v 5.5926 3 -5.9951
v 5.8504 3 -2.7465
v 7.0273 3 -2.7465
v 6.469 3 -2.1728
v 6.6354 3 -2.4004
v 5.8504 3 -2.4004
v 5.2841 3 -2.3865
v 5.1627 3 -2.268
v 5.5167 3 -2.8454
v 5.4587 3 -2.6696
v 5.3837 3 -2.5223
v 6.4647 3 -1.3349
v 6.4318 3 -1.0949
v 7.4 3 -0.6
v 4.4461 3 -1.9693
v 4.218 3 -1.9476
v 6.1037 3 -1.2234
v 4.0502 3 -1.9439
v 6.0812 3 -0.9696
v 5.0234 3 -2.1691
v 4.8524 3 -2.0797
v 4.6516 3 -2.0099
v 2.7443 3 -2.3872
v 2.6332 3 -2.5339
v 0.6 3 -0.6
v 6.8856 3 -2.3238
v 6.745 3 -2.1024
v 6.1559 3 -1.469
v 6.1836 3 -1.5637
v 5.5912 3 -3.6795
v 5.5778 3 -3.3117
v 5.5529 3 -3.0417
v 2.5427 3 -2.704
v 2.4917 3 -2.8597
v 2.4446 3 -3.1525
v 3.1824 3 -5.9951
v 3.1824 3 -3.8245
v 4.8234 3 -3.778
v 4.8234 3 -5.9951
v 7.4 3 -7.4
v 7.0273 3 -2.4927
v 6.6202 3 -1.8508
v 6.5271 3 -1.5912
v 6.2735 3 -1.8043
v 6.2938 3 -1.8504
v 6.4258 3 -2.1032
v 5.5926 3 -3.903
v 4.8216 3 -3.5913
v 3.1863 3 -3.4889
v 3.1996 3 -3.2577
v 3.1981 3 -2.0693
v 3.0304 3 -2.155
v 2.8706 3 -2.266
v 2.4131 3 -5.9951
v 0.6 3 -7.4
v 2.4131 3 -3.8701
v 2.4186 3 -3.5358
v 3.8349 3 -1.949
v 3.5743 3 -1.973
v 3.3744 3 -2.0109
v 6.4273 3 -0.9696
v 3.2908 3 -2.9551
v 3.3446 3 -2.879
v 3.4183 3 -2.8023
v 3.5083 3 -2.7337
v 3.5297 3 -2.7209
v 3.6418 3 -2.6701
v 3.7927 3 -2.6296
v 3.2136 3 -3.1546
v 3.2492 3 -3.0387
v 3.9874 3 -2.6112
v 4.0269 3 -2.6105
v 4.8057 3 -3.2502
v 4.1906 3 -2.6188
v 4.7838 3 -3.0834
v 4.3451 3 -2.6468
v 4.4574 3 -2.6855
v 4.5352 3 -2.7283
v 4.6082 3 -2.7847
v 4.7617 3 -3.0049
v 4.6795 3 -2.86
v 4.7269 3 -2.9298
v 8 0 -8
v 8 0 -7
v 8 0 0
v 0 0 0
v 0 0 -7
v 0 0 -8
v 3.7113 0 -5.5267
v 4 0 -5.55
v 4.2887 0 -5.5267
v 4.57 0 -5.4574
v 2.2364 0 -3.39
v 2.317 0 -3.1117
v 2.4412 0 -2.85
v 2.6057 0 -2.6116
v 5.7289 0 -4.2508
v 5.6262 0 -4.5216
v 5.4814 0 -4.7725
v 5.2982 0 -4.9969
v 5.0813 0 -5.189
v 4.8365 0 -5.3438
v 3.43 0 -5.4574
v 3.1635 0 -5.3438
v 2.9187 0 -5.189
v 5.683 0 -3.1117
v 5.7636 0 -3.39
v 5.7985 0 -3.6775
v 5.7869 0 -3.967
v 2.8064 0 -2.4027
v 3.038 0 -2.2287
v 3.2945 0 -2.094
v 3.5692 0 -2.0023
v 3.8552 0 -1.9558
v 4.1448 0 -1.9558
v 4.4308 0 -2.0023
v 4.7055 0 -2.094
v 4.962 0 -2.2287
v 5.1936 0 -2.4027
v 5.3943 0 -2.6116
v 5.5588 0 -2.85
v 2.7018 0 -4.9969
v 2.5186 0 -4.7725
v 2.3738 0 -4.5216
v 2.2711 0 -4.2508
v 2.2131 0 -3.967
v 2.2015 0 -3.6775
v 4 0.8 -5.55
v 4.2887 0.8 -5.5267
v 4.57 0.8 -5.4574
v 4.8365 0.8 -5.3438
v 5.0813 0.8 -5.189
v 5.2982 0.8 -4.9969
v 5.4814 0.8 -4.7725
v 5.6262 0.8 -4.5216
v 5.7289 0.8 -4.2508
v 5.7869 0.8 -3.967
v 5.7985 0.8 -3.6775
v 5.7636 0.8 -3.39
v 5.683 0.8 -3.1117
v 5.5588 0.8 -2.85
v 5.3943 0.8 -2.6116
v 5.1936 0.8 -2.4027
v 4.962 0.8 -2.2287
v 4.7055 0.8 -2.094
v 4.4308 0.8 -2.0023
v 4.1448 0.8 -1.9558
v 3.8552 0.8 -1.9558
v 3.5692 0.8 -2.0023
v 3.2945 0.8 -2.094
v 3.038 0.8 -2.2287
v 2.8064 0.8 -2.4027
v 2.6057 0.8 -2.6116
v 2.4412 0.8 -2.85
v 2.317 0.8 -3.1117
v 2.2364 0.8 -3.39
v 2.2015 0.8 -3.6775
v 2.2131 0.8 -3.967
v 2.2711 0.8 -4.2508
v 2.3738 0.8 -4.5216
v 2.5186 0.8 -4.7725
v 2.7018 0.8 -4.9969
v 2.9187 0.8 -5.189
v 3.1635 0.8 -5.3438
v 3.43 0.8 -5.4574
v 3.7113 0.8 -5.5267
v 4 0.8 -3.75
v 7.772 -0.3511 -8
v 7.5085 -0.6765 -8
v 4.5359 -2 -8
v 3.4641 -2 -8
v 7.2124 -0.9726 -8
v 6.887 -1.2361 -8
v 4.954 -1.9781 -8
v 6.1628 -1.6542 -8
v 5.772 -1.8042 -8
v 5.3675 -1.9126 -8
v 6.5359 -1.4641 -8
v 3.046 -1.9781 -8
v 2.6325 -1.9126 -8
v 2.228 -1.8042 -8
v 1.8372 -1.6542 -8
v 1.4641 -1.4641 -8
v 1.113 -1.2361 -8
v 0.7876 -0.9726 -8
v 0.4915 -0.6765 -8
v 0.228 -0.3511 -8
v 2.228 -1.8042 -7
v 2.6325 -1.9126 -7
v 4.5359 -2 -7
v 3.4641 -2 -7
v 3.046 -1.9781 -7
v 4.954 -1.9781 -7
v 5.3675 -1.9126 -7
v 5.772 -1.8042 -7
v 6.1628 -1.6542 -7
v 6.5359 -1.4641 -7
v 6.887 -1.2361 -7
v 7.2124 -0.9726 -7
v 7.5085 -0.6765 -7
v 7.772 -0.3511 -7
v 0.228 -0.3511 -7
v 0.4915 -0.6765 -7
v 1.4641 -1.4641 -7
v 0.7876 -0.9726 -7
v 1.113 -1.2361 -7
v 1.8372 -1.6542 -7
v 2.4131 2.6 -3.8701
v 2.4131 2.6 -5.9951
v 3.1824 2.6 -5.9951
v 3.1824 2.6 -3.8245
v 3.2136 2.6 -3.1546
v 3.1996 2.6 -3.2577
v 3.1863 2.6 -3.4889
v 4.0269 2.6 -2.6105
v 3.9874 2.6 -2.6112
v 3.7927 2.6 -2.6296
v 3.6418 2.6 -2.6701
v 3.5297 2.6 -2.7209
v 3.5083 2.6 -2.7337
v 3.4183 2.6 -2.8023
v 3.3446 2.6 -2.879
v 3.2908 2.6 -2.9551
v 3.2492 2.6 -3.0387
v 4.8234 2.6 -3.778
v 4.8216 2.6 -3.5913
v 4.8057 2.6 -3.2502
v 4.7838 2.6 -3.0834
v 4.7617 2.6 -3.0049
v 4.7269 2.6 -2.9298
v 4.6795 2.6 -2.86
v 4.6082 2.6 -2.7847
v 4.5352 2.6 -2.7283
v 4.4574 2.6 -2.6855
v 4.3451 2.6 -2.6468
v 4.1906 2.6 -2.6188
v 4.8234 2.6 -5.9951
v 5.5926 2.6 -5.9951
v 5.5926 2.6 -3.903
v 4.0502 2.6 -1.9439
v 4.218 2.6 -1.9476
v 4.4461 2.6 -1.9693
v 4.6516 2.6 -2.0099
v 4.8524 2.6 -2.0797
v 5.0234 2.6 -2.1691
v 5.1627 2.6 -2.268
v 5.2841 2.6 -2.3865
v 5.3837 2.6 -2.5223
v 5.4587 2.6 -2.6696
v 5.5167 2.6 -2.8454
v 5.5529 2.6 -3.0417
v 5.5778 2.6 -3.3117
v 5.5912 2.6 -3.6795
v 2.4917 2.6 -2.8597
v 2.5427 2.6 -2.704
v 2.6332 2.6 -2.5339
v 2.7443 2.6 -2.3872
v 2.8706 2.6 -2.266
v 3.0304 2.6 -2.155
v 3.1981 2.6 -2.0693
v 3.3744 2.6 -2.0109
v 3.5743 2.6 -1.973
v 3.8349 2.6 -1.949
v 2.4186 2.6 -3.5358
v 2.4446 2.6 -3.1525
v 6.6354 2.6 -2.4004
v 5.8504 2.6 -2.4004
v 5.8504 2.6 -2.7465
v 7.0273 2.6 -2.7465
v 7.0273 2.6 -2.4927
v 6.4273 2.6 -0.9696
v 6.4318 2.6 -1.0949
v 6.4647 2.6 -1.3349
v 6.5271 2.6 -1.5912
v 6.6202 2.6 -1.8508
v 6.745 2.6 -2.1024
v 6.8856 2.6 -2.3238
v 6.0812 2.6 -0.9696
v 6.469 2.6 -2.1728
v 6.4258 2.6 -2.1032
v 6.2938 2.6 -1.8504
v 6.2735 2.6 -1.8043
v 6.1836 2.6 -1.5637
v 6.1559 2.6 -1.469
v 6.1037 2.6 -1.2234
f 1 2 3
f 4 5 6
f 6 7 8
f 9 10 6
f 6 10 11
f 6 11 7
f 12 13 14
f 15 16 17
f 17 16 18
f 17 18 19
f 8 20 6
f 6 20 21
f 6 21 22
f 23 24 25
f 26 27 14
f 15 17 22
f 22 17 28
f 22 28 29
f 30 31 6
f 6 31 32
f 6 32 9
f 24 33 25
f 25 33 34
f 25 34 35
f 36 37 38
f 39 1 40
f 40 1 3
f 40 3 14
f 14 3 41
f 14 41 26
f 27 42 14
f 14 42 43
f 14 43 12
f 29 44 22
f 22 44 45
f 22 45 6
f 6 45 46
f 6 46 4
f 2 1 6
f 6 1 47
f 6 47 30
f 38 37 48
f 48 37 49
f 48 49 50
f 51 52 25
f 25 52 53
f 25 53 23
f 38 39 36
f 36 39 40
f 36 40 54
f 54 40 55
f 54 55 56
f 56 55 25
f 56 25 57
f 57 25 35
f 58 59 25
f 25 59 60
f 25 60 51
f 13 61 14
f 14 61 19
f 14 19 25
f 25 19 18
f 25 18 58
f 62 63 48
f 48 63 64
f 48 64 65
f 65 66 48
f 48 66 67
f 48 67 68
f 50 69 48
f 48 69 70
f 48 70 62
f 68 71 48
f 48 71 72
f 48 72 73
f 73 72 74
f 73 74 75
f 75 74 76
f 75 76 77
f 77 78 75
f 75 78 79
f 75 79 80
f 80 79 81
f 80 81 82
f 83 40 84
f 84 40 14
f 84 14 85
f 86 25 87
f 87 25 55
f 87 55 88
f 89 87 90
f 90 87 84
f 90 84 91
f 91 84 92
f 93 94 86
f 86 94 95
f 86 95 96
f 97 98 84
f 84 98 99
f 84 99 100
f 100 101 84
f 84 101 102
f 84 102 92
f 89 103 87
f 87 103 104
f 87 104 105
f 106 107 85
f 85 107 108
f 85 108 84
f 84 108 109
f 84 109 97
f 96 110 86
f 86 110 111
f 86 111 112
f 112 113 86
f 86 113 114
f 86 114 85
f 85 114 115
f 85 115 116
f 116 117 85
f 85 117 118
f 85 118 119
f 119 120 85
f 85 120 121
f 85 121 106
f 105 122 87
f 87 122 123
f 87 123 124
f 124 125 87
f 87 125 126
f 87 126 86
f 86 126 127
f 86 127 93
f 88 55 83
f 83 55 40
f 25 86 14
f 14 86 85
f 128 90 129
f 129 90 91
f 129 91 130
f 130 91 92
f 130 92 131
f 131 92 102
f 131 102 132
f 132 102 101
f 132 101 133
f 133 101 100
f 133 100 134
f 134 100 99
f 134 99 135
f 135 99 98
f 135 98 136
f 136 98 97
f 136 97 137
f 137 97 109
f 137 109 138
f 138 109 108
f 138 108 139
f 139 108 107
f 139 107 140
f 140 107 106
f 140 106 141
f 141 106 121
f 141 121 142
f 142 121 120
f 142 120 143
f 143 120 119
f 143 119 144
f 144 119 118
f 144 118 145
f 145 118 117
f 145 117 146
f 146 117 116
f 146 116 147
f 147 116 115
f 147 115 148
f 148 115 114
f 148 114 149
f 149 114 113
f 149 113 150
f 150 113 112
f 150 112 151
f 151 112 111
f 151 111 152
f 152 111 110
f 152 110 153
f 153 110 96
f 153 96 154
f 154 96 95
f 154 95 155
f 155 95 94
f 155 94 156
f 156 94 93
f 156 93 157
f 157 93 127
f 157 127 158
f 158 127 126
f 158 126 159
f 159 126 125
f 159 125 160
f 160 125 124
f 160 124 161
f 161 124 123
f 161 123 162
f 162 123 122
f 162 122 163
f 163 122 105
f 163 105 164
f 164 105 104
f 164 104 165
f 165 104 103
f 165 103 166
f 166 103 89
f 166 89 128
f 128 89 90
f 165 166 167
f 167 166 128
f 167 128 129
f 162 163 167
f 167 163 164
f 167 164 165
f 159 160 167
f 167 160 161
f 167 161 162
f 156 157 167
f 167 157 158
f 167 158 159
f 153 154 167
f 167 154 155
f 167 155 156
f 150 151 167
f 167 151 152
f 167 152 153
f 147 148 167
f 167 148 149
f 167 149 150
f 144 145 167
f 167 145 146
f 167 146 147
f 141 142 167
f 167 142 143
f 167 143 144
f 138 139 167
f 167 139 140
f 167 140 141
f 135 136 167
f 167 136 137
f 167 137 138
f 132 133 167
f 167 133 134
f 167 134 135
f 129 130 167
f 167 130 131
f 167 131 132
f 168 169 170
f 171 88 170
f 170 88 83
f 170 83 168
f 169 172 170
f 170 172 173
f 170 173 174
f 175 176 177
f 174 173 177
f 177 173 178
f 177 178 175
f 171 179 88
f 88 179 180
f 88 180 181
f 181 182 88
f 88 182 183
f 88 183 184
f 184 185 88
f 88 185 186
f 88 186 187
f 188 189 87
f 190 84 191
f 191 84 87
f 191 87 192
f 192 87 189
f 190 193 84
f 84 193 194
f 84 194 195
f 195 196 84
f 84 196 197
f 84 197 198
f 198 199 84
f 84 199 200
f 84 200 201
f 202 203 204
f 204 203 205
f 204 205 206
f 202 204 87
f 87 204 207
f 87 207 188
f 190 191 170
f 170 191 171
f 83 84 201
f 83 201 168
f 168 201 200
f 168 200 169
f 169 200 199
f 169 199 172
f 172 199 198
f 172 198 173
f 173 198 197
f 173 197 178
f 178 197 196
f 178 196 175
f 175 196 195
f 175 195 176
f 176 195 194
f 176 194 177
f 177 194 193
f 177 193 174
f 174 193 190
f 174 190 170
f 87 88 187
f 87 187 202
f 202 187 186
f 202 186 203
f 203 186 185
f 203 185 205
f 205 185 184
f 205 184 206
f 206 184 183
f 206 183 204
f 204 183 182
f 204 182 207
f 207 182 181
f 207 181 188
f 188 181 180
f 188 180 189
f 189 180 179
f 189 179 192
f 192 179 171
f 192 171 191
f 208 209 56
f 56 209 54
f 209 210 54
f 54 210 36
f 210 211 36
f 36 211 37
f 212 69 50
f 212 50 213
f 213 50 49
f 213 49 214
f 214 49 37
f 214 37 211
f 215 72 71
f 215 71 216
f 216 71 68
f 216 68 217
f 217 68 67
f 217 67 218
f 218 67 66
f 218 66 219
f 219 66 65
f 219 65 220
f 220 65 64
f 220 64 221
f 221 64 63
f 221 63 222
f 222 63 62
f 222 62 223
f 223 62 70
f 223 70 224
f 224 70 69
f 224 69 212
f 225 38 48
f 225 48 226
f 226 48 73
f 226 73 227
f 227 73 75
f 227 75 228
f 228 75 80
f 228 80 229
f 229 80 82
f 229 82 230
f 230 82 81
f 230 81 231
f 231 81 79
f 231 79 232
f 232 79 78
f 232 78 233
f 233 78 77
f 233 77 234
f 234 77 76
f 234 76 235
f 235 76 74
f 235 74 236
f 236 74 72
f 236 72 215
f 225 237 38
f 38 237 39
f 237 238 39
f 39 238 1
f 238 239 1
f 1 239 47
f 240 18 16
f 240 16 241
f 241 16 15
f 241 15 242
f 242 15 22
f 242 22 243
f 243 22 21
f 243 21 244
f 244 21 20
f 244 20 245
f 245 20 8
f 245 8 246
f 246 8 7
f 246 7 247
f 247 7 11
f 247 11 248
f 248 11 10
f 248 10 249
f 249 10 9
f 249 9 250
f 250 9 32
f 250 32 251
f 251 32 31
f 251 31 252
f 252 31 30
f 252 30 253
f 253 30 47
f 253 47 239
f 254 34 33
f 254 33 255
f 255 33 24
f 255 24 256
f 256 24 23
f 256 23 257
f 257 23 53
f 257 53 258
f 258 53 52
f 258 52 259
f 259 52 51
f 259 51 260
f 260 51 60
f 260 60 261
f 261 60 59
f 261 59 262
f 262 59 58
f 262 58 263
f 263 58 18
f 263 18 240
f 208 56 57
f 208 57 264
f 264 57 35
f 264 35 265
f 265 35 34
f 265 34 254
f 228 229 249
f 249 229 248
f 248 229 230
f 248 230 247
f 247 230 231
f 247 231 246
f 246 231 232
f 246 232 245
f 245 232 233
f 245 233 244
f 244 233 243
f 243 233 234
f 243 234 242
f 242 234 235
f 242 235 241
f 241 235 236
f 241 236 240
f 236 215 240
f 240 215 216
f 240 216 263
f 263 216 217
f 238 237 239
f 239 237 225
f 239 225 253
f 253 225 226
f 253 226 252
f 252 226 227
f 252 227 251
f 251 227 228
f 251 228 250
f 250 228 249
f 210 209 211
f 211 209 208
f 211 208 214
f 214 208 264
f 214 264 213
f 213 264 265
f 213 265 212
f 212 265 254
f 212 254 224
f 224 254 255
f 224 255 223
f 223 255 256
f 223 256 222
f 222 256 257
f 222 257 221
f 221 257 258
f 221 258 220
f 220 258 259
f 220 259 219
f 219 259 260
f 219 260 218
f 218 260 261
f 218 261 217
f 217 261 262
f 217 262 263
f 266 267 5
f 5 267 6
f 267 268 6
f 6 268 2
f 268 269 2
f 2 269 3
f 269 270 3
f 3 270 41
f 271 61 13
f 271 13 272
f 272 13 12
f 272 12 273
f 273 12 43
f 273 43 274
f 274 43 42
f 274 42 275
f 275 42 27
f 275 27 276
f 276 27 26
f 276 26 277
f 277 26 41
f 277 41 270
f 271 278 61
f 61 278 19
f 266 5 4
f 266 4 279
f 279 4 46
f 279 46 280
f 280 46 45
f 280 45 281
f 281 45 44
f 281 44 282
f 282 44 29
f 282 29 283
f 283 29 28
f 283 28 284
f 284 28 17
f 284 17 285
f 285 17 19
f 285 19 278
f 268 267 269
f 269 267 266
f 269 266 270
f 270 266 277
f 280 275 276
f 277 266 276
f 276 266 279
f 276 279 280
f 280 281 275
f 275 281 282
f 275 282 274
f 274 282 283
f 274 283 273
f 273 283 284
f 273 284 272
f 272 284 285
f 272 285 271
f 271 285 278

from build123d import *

# Parameters (mm, degrees)
SKETCH1_W               = 8
SKETCH1_H               = 8
BOSS_EXTRUDE1_DEPTH     = 3
CUT_EXTRUDE1_DEPTH      = 12.704699911
CUT_EXTRUDE1_DEPTH_BACK = 12.704699911
CUT_EXTRUDE2_DEPTH      = 11
SKETCH4_R               = 1.8
CUT_EXTRUDE3_DEPTH      = 0.8
SKETCH5_W               = 8
SKETCH5_H               = 1
BOSS_EXTRUDE2_DEPTH     = 2
FILLET1_R               = 4
CUT_EXTRUDE4_DEPTH      = 0.4
CUT_EXTRUDE5_DEPTH      = 0.4


with BuildPart() as part:
    # Sketch1 → Boss-Extrude1 (new body)
    with BuildSketch(Plane(origin=(0, 0, 0), x_dir=(1, 0, 0), z_dir=(0, 1, 0))):
        with Locations((4, 4)):
            Rectangle(SKETCH1_W, SKETCH1_H)
    extrude(amount=BOSS_EXTRUDE1_DEPTH)

    # Sketch2 → Cut-Extrude1 (cut, two sides: drawn at the far end of the back side and taken through both)
    with BuildSketch(Plane.XY.offset(-CUT_EXTRUDE1_DEPTH_BACK)):
        Polygon((0, 0), (0.6, 3), (0, 3), align=None)
        Polygon((8, 0), (7.4, 3), (8, 3), align=None)
    extrude(amount=CUT_EXTRUDE1_DEPTH + CUT_EXTRUDE1_DEPTH_BACK, mode=Mode.SUBTRACT)

    # Sketch3 → Cut-Extrude2 (cut)
    with BuildSketch(Plane(origin=(0, 0, 0), x_dir=(0, 0, -1), z_dir=(1, 0, 0))):
        Polygon((0, 0), (0.6, 3), (0, 3), align=None)
        Polygon((8, 3), (7.4, 3), (8, 0), align=None)
    extrude(amount=CUT_EXTRUDE2_DEPTH, mode=Mode.SUBTRACT)

    # Sketch4 → Cut-Extrude3 (cut)
    with BuildSketch(Plane.XZ):
        with Locations(Location((4, -3.75, 0), (0, 0, 270))):
            Circle(SKETCH4_R)
    extrude(amount=-CUT_EXTRUDE3_DEPTH, mode=Mode.SUBTRACT)

    # Sketch5 → Boss-Extrude2 (add)
    with BuildSketch(Plane.XZ):
        with Locations((4, -7.5)):
            Rectangle(SKETCH5_W, SKETCH5_H)
    extrude(amount=BOSS_EXTRUDE2_DEPTH)

    # Fillet1
    # the kernel refuses this fillet: 4 mm, written as the material it takes off along each edge
    with BuildSketch(Plane(origin=(8, -2, -16.660254038), x_dir=(0, 1, 0), z_dir=(0, 0, 1)), Plane(origin=(0, -2, 1.660254038), x_dir=(0, 1, 0), z_dir=(0, 0, -1))) as fillet1_piece_1:
        with BuildLine():
            CenterArc((4, 3.464101615), FILLET1_R, 180, 60)
            Line((0, 3.464101615), (-0.08, 3.464101615))
            Line((-0.08, 3.464101615), (-0.08, 0))
            Line((-0.08, 0), (0, -0.08))
            ThreePointArc((0, -0.08), (1, -0.08), (1.96, -0.069282032))
            Line((1.96, -0.069282032), (2, 0))
        make_face()
    extrude(amount=18.320508076, mode=Mode.SUBTRACT)

    # Sketch6 → Cut-Extrude4 (cut)
    with BuildSketch(Plane(origin=(0, 3, 0), x_dir=(1, 0, 0), z_dir=(0, 1, 0))):
        with BuildLine():
            Line((2.413140262, 5.995145478), (3.182371031, 5.995145478))
            Line((3.182371031, 5.995145478), (3.182371031, 3.824472401))
            add(Edge.make_bspline(
                [(3.182371031, 3.824472401), (3.182664695, 3.783339968), (3.183225327, 3.704814249), (3.183611242, 3.59262518), (3.18574694, 3.491896749), (3.190378411, 3.402466647), (3.193557117, 3.32438048), (3.199459629, 3.257623918), (3.205347836, 3.202222959), (3.211072588, 3.16927001), (3.213621031, 3.154600607)],
                knots=[0, 0, 0, 0, 1.470600056, 2.807515117, 4.011048972, 5.072079398, 6.00911328, 6.804506435, 7.467811572, 8, 8, 8, 8], degree=3))
            add(Edge.make_bspline(
                [(3.213621031, 3.154600607), (3.224127628, 3.115054038), (3.244816443, 3.03718185), (3.301842427, 2.930732637), (3.377172946, 2.83690436), (3.454012852, 2.769989694), (3.523520467, 2.722632459), (3.582561491, 2.693810163), (3.645203631, 2.667536787), (3.712771176, 2.647377448), (3.784538951, 2.629737301), (3.861373833, 2.619537644), (3.942627383, 2.611709661), (3.998321517, 2.610930314), (4.026922313, 2.610530094)],
                knots=[0, 0, 0, 0, 1.376921055, 2.711331395, 4.038631339, 5.418057255, 6.132954575, 6.870556231, 7.630397752, 8.422890386, 9.247036838, 10.121396817, 11.035274583, 12, 12, 12, 12], degree=3))
            add(Edge.make_bspline(
                [(4.026922313, 2.610530094), (4.055777389, 2.611053435), (4.111957634, 2.612072369), (4.193372399, 2.618140476), (4.269330983, 2.629588903), (4.339786919, 2.644600001), (4.40511233, 2.663571514), (4.464786061, 2.687591678), (4.518714075, 2.716497769), (4.582078678, 2.760066391), (4.650258908, 2.821527538), (4.715873674, 2.905091818), (4.762833649, 2.997337694), (4.784859868, 3.081565077), (4.796180605, 3.154949811), (4.803077806, 3.219164001), (4.809385646, 3.291832182), (4.815113647, 3.372755319), (4.819030865, 3.461994153), (4.821149619, 3.559774375), (4.82281709, 3.666080391), (4.823198873, 3.739802878), (4.823396672, 3.777998042)],
                knots=[0, 0, 0, 0, 1.036876239, 2.018776863, 2.930845756, 3.794842666, 4.605604932, 5.371924355, 6.101864688, 6.799283669, 8.1310906, 9.382718023, 10.597336334, 11.822035891, 12.492591141, 13.265194674, 14.141890321, 15.11351293, 16.179860579, 17.351049011, 18.627594861, 20, 20, 20, 20], degree=3))
            Line((4.823396672, 3.777998042), (4.823396672, 5.995145478))
            Line((4.823396672, 5.995145478), (5.592627441, 5.995145478))
            Line((5.592627441, 5.995145478), (5.592627441, 3.902998042))
            add(Edge.make_bspline(
                [(5.592627441, 3.902998042), (5.592528847, 3.845305157), (5.592339402, 3.734449864), (5.589381475, 3.574956755), (5.583094941, 3.428628514), (5.577830511, 3.295214312), (5.567675642, 3.175054503), (5.557043529, 3.068074376), (5.543346947, 2.974292627), (5.523815493, 2.867696041), (5.490991615, 2.748101531), (5.438090809, 2.615994056), (5.370481989, 2.495804532), (5.288434562, 2.387071806), (5.192421188, 2.289363714), (5.081004269, 2.203064381), (4.955329501, 2.127124651), (4.84016309, 2.072443299), (4.739752735, 2.035622669), (4.65797018, 2.010704116), (4.570444093, 1.989952175), (4.477277128, 1.973483664), (4.378429252, 1.959598273), (4.273864574, 1.950325107), (4.163741291, 1.944537997), (4.088628699, 1.944091898), (4.050159493, 1.943863427)],
                knots=[0, 0, 0, 0, 1.415574045, 2.719986624, 3.913607924, 5.00929969, 5.995467356, 6.871900228, 7.64671288, 8.320227872, 9.530145585, 10.682614022, 11.803571353, 12.90325401, 14.015460715, 15.154679255, 16.351678057, 17.612271512, 18.275764165, 18.974412946, 19.708786676, 20.481351116, 21.295095879, 22.157200529, 23.056203067, 24, 24, 24, 24], degree=3))
            add(Edge.make_bspline(
                [(4.050159493, 1.943863427), (4.00394899, 1.944454117), (3.914432357, 1.945598373), (3.784491522, 1.950702797), (3.663419731, 1.961238523), (3.550836598, 1.975478544), (3.446788608, 1.993784557), (3.351012543, 2.015669281), (3.264273035, 2.043328483), (3.160959321, 2.082832512), (3.045798952, 2.143260432), (2.920442018, 2.223870786), (2.810400187, 2.314853884), (2.716640343, 2.415320705), (2.638260762, 2.521740618), (2.574552012, 2.631810814), (2.523497916, 2.743696672), (2.502164616, 2.821459533), (2.491665903, 2.859728812)],
                knots=[0, 0, 0, 0, 1.128613534, 2.186292659, 3.174878439, 4.095586888, 4.95671962, 5.754129884, 6.492676435, 7.178284149, 8.453103036, 9.659838108, 10.813193309, 11.929983019, 13.007587775, 14.033493319, 15.032227051, 16, 16, 16, 16], degree=3))
            add(Edge.make_bspline(
                [(2.491665903, 2.859728812), (2.48524032, 2.889857793), (2.471705989, 2.953319061), (2.456334745, 3.054210037), (2.442311642, 3.165307899), (2.432733679, 3.286744058), (2.423654648, 3.418133217), (2.417136225, 3.559723113), (2.414455843, 3.711481594), (2.413587623, 3.816192051), (2.413140262, 3.870145478)],
                knots=[0, 0, 0, 0, 0.728071598, 1.533551606, 2.411422299, 3.374601532, 4.412367648, 5.524718474, 6.72457895, 8, 8, 8, 8], degree=3))
            Line((2.413140262, 3.870145478), (2.413140262, 5.995145478))
        make_face()
    extrude(amount=-CUT_EXTRUDE4_DEPTH, mode=Mode.SUBTRACT)

    # Sketch7 → Cut-Extrude5 (cut)
    with BuildSketch(Plane(origin=(0, 3, 0), x_dir=(1, 0, 0), z_dir=(0, 1, 0))):
        with BuildLine():
            Line((5.850386773, 2.400368579), (5.850386773, 2.746522425))
            Line((5.850386773, 2.746522425), (7.02730985, 2.746522425))
            Line((7.02730985, 2.746522425), (7.02730985, 2.492676271))
            add(Edge.make_bspline(
                [(7.02730985, 2.492676271), (7.015032321, 2.480184286), (6.989793248, 2.454504354), (6.953640746, 2.41247659), (6.916952595, 2.366869092), (6.880495981, 2.317067299), (6.84313767, 2.263857918), (6.806519427, 2.206220957), (6.769380335, 2.144904141), (6.719379376, 2.058171383), (6.660934493, 1.944871602), (6.599102899, 1.804034186), (6.546425212, 1.658871525), (6.510353845, 1.535182236), (6.485981829, 1.436045461), (6.470058334, 1.363554301), (6.45665413, 1.293103137), (6.44574982, 1.224568153), (6.437611625, 1.157918082), (6.431181064, 1.093384645), (6.428008496, 1.030810475), (6.427540351, 0.989794441), (6.42730985, 0.969599348)],
                knots=[0, 0, 0, 0, 0.628545797, 1.29210959, 1.98878689, 2.729126096, 3.507039704, 4.322017351, 5.179550397, 6.080149501, 7.915136253, 9.752312618, 11.597470118, 13.454141581, 14.373891568, 15.261584755, 16.117868869, 16.947726723, 17.752002974, 18.527724242, 19.275094557, 20, 20, 20, 20], degree=3))
            Line((6.42730985, 0.969599348), (6.081156004, 0.969599348))
            add(Edge.make_bspline(
                [(6.081156004, 0.969599348), (6.082313464, 1.000264514), (6.084641243, 1.061935513), (6.093350513, 1.15450167), (6.107029358, 1.247412503), (6.124019401, 1.340882746), (6.146450494, 1.434684851), (6.172051243, 1.529166286), (6.203062702, 1.623822431), (6.237825714, 1.718472296), (6.276202253, 1.812217257), (6.31802728, 1.903894573), (6.363192674, 1.992932291), (6.411111069, 2.079643245), (6.462339924, 2.16374848), (6.516917811, 2.245156666), (6.574070556, 2.324456683), (6.614935451, 2.375068877), (6.635362734, 2.400368579)],
                knots=[0, 0, 0, 0, 0.943249748, 1.896978291, 2.856365892, 3.829648507, 4.816416106, 5.820376826, 6.838120354, 7.877341886, 8.919613352, 9.951365796, 10.974227495, 11.988073359, 12.996274698, 14.000568529, 15.000536908, 16, 16, 16, 16], degree=3))
            Line((6.635362734, 2.400368579), (5.850386773, 2.400368579))
        make_face()
    extrude(amount=-CUT_EXTRUDE5_DEPTH, mode=Mode.SUBTRACT)


solid = part.part
